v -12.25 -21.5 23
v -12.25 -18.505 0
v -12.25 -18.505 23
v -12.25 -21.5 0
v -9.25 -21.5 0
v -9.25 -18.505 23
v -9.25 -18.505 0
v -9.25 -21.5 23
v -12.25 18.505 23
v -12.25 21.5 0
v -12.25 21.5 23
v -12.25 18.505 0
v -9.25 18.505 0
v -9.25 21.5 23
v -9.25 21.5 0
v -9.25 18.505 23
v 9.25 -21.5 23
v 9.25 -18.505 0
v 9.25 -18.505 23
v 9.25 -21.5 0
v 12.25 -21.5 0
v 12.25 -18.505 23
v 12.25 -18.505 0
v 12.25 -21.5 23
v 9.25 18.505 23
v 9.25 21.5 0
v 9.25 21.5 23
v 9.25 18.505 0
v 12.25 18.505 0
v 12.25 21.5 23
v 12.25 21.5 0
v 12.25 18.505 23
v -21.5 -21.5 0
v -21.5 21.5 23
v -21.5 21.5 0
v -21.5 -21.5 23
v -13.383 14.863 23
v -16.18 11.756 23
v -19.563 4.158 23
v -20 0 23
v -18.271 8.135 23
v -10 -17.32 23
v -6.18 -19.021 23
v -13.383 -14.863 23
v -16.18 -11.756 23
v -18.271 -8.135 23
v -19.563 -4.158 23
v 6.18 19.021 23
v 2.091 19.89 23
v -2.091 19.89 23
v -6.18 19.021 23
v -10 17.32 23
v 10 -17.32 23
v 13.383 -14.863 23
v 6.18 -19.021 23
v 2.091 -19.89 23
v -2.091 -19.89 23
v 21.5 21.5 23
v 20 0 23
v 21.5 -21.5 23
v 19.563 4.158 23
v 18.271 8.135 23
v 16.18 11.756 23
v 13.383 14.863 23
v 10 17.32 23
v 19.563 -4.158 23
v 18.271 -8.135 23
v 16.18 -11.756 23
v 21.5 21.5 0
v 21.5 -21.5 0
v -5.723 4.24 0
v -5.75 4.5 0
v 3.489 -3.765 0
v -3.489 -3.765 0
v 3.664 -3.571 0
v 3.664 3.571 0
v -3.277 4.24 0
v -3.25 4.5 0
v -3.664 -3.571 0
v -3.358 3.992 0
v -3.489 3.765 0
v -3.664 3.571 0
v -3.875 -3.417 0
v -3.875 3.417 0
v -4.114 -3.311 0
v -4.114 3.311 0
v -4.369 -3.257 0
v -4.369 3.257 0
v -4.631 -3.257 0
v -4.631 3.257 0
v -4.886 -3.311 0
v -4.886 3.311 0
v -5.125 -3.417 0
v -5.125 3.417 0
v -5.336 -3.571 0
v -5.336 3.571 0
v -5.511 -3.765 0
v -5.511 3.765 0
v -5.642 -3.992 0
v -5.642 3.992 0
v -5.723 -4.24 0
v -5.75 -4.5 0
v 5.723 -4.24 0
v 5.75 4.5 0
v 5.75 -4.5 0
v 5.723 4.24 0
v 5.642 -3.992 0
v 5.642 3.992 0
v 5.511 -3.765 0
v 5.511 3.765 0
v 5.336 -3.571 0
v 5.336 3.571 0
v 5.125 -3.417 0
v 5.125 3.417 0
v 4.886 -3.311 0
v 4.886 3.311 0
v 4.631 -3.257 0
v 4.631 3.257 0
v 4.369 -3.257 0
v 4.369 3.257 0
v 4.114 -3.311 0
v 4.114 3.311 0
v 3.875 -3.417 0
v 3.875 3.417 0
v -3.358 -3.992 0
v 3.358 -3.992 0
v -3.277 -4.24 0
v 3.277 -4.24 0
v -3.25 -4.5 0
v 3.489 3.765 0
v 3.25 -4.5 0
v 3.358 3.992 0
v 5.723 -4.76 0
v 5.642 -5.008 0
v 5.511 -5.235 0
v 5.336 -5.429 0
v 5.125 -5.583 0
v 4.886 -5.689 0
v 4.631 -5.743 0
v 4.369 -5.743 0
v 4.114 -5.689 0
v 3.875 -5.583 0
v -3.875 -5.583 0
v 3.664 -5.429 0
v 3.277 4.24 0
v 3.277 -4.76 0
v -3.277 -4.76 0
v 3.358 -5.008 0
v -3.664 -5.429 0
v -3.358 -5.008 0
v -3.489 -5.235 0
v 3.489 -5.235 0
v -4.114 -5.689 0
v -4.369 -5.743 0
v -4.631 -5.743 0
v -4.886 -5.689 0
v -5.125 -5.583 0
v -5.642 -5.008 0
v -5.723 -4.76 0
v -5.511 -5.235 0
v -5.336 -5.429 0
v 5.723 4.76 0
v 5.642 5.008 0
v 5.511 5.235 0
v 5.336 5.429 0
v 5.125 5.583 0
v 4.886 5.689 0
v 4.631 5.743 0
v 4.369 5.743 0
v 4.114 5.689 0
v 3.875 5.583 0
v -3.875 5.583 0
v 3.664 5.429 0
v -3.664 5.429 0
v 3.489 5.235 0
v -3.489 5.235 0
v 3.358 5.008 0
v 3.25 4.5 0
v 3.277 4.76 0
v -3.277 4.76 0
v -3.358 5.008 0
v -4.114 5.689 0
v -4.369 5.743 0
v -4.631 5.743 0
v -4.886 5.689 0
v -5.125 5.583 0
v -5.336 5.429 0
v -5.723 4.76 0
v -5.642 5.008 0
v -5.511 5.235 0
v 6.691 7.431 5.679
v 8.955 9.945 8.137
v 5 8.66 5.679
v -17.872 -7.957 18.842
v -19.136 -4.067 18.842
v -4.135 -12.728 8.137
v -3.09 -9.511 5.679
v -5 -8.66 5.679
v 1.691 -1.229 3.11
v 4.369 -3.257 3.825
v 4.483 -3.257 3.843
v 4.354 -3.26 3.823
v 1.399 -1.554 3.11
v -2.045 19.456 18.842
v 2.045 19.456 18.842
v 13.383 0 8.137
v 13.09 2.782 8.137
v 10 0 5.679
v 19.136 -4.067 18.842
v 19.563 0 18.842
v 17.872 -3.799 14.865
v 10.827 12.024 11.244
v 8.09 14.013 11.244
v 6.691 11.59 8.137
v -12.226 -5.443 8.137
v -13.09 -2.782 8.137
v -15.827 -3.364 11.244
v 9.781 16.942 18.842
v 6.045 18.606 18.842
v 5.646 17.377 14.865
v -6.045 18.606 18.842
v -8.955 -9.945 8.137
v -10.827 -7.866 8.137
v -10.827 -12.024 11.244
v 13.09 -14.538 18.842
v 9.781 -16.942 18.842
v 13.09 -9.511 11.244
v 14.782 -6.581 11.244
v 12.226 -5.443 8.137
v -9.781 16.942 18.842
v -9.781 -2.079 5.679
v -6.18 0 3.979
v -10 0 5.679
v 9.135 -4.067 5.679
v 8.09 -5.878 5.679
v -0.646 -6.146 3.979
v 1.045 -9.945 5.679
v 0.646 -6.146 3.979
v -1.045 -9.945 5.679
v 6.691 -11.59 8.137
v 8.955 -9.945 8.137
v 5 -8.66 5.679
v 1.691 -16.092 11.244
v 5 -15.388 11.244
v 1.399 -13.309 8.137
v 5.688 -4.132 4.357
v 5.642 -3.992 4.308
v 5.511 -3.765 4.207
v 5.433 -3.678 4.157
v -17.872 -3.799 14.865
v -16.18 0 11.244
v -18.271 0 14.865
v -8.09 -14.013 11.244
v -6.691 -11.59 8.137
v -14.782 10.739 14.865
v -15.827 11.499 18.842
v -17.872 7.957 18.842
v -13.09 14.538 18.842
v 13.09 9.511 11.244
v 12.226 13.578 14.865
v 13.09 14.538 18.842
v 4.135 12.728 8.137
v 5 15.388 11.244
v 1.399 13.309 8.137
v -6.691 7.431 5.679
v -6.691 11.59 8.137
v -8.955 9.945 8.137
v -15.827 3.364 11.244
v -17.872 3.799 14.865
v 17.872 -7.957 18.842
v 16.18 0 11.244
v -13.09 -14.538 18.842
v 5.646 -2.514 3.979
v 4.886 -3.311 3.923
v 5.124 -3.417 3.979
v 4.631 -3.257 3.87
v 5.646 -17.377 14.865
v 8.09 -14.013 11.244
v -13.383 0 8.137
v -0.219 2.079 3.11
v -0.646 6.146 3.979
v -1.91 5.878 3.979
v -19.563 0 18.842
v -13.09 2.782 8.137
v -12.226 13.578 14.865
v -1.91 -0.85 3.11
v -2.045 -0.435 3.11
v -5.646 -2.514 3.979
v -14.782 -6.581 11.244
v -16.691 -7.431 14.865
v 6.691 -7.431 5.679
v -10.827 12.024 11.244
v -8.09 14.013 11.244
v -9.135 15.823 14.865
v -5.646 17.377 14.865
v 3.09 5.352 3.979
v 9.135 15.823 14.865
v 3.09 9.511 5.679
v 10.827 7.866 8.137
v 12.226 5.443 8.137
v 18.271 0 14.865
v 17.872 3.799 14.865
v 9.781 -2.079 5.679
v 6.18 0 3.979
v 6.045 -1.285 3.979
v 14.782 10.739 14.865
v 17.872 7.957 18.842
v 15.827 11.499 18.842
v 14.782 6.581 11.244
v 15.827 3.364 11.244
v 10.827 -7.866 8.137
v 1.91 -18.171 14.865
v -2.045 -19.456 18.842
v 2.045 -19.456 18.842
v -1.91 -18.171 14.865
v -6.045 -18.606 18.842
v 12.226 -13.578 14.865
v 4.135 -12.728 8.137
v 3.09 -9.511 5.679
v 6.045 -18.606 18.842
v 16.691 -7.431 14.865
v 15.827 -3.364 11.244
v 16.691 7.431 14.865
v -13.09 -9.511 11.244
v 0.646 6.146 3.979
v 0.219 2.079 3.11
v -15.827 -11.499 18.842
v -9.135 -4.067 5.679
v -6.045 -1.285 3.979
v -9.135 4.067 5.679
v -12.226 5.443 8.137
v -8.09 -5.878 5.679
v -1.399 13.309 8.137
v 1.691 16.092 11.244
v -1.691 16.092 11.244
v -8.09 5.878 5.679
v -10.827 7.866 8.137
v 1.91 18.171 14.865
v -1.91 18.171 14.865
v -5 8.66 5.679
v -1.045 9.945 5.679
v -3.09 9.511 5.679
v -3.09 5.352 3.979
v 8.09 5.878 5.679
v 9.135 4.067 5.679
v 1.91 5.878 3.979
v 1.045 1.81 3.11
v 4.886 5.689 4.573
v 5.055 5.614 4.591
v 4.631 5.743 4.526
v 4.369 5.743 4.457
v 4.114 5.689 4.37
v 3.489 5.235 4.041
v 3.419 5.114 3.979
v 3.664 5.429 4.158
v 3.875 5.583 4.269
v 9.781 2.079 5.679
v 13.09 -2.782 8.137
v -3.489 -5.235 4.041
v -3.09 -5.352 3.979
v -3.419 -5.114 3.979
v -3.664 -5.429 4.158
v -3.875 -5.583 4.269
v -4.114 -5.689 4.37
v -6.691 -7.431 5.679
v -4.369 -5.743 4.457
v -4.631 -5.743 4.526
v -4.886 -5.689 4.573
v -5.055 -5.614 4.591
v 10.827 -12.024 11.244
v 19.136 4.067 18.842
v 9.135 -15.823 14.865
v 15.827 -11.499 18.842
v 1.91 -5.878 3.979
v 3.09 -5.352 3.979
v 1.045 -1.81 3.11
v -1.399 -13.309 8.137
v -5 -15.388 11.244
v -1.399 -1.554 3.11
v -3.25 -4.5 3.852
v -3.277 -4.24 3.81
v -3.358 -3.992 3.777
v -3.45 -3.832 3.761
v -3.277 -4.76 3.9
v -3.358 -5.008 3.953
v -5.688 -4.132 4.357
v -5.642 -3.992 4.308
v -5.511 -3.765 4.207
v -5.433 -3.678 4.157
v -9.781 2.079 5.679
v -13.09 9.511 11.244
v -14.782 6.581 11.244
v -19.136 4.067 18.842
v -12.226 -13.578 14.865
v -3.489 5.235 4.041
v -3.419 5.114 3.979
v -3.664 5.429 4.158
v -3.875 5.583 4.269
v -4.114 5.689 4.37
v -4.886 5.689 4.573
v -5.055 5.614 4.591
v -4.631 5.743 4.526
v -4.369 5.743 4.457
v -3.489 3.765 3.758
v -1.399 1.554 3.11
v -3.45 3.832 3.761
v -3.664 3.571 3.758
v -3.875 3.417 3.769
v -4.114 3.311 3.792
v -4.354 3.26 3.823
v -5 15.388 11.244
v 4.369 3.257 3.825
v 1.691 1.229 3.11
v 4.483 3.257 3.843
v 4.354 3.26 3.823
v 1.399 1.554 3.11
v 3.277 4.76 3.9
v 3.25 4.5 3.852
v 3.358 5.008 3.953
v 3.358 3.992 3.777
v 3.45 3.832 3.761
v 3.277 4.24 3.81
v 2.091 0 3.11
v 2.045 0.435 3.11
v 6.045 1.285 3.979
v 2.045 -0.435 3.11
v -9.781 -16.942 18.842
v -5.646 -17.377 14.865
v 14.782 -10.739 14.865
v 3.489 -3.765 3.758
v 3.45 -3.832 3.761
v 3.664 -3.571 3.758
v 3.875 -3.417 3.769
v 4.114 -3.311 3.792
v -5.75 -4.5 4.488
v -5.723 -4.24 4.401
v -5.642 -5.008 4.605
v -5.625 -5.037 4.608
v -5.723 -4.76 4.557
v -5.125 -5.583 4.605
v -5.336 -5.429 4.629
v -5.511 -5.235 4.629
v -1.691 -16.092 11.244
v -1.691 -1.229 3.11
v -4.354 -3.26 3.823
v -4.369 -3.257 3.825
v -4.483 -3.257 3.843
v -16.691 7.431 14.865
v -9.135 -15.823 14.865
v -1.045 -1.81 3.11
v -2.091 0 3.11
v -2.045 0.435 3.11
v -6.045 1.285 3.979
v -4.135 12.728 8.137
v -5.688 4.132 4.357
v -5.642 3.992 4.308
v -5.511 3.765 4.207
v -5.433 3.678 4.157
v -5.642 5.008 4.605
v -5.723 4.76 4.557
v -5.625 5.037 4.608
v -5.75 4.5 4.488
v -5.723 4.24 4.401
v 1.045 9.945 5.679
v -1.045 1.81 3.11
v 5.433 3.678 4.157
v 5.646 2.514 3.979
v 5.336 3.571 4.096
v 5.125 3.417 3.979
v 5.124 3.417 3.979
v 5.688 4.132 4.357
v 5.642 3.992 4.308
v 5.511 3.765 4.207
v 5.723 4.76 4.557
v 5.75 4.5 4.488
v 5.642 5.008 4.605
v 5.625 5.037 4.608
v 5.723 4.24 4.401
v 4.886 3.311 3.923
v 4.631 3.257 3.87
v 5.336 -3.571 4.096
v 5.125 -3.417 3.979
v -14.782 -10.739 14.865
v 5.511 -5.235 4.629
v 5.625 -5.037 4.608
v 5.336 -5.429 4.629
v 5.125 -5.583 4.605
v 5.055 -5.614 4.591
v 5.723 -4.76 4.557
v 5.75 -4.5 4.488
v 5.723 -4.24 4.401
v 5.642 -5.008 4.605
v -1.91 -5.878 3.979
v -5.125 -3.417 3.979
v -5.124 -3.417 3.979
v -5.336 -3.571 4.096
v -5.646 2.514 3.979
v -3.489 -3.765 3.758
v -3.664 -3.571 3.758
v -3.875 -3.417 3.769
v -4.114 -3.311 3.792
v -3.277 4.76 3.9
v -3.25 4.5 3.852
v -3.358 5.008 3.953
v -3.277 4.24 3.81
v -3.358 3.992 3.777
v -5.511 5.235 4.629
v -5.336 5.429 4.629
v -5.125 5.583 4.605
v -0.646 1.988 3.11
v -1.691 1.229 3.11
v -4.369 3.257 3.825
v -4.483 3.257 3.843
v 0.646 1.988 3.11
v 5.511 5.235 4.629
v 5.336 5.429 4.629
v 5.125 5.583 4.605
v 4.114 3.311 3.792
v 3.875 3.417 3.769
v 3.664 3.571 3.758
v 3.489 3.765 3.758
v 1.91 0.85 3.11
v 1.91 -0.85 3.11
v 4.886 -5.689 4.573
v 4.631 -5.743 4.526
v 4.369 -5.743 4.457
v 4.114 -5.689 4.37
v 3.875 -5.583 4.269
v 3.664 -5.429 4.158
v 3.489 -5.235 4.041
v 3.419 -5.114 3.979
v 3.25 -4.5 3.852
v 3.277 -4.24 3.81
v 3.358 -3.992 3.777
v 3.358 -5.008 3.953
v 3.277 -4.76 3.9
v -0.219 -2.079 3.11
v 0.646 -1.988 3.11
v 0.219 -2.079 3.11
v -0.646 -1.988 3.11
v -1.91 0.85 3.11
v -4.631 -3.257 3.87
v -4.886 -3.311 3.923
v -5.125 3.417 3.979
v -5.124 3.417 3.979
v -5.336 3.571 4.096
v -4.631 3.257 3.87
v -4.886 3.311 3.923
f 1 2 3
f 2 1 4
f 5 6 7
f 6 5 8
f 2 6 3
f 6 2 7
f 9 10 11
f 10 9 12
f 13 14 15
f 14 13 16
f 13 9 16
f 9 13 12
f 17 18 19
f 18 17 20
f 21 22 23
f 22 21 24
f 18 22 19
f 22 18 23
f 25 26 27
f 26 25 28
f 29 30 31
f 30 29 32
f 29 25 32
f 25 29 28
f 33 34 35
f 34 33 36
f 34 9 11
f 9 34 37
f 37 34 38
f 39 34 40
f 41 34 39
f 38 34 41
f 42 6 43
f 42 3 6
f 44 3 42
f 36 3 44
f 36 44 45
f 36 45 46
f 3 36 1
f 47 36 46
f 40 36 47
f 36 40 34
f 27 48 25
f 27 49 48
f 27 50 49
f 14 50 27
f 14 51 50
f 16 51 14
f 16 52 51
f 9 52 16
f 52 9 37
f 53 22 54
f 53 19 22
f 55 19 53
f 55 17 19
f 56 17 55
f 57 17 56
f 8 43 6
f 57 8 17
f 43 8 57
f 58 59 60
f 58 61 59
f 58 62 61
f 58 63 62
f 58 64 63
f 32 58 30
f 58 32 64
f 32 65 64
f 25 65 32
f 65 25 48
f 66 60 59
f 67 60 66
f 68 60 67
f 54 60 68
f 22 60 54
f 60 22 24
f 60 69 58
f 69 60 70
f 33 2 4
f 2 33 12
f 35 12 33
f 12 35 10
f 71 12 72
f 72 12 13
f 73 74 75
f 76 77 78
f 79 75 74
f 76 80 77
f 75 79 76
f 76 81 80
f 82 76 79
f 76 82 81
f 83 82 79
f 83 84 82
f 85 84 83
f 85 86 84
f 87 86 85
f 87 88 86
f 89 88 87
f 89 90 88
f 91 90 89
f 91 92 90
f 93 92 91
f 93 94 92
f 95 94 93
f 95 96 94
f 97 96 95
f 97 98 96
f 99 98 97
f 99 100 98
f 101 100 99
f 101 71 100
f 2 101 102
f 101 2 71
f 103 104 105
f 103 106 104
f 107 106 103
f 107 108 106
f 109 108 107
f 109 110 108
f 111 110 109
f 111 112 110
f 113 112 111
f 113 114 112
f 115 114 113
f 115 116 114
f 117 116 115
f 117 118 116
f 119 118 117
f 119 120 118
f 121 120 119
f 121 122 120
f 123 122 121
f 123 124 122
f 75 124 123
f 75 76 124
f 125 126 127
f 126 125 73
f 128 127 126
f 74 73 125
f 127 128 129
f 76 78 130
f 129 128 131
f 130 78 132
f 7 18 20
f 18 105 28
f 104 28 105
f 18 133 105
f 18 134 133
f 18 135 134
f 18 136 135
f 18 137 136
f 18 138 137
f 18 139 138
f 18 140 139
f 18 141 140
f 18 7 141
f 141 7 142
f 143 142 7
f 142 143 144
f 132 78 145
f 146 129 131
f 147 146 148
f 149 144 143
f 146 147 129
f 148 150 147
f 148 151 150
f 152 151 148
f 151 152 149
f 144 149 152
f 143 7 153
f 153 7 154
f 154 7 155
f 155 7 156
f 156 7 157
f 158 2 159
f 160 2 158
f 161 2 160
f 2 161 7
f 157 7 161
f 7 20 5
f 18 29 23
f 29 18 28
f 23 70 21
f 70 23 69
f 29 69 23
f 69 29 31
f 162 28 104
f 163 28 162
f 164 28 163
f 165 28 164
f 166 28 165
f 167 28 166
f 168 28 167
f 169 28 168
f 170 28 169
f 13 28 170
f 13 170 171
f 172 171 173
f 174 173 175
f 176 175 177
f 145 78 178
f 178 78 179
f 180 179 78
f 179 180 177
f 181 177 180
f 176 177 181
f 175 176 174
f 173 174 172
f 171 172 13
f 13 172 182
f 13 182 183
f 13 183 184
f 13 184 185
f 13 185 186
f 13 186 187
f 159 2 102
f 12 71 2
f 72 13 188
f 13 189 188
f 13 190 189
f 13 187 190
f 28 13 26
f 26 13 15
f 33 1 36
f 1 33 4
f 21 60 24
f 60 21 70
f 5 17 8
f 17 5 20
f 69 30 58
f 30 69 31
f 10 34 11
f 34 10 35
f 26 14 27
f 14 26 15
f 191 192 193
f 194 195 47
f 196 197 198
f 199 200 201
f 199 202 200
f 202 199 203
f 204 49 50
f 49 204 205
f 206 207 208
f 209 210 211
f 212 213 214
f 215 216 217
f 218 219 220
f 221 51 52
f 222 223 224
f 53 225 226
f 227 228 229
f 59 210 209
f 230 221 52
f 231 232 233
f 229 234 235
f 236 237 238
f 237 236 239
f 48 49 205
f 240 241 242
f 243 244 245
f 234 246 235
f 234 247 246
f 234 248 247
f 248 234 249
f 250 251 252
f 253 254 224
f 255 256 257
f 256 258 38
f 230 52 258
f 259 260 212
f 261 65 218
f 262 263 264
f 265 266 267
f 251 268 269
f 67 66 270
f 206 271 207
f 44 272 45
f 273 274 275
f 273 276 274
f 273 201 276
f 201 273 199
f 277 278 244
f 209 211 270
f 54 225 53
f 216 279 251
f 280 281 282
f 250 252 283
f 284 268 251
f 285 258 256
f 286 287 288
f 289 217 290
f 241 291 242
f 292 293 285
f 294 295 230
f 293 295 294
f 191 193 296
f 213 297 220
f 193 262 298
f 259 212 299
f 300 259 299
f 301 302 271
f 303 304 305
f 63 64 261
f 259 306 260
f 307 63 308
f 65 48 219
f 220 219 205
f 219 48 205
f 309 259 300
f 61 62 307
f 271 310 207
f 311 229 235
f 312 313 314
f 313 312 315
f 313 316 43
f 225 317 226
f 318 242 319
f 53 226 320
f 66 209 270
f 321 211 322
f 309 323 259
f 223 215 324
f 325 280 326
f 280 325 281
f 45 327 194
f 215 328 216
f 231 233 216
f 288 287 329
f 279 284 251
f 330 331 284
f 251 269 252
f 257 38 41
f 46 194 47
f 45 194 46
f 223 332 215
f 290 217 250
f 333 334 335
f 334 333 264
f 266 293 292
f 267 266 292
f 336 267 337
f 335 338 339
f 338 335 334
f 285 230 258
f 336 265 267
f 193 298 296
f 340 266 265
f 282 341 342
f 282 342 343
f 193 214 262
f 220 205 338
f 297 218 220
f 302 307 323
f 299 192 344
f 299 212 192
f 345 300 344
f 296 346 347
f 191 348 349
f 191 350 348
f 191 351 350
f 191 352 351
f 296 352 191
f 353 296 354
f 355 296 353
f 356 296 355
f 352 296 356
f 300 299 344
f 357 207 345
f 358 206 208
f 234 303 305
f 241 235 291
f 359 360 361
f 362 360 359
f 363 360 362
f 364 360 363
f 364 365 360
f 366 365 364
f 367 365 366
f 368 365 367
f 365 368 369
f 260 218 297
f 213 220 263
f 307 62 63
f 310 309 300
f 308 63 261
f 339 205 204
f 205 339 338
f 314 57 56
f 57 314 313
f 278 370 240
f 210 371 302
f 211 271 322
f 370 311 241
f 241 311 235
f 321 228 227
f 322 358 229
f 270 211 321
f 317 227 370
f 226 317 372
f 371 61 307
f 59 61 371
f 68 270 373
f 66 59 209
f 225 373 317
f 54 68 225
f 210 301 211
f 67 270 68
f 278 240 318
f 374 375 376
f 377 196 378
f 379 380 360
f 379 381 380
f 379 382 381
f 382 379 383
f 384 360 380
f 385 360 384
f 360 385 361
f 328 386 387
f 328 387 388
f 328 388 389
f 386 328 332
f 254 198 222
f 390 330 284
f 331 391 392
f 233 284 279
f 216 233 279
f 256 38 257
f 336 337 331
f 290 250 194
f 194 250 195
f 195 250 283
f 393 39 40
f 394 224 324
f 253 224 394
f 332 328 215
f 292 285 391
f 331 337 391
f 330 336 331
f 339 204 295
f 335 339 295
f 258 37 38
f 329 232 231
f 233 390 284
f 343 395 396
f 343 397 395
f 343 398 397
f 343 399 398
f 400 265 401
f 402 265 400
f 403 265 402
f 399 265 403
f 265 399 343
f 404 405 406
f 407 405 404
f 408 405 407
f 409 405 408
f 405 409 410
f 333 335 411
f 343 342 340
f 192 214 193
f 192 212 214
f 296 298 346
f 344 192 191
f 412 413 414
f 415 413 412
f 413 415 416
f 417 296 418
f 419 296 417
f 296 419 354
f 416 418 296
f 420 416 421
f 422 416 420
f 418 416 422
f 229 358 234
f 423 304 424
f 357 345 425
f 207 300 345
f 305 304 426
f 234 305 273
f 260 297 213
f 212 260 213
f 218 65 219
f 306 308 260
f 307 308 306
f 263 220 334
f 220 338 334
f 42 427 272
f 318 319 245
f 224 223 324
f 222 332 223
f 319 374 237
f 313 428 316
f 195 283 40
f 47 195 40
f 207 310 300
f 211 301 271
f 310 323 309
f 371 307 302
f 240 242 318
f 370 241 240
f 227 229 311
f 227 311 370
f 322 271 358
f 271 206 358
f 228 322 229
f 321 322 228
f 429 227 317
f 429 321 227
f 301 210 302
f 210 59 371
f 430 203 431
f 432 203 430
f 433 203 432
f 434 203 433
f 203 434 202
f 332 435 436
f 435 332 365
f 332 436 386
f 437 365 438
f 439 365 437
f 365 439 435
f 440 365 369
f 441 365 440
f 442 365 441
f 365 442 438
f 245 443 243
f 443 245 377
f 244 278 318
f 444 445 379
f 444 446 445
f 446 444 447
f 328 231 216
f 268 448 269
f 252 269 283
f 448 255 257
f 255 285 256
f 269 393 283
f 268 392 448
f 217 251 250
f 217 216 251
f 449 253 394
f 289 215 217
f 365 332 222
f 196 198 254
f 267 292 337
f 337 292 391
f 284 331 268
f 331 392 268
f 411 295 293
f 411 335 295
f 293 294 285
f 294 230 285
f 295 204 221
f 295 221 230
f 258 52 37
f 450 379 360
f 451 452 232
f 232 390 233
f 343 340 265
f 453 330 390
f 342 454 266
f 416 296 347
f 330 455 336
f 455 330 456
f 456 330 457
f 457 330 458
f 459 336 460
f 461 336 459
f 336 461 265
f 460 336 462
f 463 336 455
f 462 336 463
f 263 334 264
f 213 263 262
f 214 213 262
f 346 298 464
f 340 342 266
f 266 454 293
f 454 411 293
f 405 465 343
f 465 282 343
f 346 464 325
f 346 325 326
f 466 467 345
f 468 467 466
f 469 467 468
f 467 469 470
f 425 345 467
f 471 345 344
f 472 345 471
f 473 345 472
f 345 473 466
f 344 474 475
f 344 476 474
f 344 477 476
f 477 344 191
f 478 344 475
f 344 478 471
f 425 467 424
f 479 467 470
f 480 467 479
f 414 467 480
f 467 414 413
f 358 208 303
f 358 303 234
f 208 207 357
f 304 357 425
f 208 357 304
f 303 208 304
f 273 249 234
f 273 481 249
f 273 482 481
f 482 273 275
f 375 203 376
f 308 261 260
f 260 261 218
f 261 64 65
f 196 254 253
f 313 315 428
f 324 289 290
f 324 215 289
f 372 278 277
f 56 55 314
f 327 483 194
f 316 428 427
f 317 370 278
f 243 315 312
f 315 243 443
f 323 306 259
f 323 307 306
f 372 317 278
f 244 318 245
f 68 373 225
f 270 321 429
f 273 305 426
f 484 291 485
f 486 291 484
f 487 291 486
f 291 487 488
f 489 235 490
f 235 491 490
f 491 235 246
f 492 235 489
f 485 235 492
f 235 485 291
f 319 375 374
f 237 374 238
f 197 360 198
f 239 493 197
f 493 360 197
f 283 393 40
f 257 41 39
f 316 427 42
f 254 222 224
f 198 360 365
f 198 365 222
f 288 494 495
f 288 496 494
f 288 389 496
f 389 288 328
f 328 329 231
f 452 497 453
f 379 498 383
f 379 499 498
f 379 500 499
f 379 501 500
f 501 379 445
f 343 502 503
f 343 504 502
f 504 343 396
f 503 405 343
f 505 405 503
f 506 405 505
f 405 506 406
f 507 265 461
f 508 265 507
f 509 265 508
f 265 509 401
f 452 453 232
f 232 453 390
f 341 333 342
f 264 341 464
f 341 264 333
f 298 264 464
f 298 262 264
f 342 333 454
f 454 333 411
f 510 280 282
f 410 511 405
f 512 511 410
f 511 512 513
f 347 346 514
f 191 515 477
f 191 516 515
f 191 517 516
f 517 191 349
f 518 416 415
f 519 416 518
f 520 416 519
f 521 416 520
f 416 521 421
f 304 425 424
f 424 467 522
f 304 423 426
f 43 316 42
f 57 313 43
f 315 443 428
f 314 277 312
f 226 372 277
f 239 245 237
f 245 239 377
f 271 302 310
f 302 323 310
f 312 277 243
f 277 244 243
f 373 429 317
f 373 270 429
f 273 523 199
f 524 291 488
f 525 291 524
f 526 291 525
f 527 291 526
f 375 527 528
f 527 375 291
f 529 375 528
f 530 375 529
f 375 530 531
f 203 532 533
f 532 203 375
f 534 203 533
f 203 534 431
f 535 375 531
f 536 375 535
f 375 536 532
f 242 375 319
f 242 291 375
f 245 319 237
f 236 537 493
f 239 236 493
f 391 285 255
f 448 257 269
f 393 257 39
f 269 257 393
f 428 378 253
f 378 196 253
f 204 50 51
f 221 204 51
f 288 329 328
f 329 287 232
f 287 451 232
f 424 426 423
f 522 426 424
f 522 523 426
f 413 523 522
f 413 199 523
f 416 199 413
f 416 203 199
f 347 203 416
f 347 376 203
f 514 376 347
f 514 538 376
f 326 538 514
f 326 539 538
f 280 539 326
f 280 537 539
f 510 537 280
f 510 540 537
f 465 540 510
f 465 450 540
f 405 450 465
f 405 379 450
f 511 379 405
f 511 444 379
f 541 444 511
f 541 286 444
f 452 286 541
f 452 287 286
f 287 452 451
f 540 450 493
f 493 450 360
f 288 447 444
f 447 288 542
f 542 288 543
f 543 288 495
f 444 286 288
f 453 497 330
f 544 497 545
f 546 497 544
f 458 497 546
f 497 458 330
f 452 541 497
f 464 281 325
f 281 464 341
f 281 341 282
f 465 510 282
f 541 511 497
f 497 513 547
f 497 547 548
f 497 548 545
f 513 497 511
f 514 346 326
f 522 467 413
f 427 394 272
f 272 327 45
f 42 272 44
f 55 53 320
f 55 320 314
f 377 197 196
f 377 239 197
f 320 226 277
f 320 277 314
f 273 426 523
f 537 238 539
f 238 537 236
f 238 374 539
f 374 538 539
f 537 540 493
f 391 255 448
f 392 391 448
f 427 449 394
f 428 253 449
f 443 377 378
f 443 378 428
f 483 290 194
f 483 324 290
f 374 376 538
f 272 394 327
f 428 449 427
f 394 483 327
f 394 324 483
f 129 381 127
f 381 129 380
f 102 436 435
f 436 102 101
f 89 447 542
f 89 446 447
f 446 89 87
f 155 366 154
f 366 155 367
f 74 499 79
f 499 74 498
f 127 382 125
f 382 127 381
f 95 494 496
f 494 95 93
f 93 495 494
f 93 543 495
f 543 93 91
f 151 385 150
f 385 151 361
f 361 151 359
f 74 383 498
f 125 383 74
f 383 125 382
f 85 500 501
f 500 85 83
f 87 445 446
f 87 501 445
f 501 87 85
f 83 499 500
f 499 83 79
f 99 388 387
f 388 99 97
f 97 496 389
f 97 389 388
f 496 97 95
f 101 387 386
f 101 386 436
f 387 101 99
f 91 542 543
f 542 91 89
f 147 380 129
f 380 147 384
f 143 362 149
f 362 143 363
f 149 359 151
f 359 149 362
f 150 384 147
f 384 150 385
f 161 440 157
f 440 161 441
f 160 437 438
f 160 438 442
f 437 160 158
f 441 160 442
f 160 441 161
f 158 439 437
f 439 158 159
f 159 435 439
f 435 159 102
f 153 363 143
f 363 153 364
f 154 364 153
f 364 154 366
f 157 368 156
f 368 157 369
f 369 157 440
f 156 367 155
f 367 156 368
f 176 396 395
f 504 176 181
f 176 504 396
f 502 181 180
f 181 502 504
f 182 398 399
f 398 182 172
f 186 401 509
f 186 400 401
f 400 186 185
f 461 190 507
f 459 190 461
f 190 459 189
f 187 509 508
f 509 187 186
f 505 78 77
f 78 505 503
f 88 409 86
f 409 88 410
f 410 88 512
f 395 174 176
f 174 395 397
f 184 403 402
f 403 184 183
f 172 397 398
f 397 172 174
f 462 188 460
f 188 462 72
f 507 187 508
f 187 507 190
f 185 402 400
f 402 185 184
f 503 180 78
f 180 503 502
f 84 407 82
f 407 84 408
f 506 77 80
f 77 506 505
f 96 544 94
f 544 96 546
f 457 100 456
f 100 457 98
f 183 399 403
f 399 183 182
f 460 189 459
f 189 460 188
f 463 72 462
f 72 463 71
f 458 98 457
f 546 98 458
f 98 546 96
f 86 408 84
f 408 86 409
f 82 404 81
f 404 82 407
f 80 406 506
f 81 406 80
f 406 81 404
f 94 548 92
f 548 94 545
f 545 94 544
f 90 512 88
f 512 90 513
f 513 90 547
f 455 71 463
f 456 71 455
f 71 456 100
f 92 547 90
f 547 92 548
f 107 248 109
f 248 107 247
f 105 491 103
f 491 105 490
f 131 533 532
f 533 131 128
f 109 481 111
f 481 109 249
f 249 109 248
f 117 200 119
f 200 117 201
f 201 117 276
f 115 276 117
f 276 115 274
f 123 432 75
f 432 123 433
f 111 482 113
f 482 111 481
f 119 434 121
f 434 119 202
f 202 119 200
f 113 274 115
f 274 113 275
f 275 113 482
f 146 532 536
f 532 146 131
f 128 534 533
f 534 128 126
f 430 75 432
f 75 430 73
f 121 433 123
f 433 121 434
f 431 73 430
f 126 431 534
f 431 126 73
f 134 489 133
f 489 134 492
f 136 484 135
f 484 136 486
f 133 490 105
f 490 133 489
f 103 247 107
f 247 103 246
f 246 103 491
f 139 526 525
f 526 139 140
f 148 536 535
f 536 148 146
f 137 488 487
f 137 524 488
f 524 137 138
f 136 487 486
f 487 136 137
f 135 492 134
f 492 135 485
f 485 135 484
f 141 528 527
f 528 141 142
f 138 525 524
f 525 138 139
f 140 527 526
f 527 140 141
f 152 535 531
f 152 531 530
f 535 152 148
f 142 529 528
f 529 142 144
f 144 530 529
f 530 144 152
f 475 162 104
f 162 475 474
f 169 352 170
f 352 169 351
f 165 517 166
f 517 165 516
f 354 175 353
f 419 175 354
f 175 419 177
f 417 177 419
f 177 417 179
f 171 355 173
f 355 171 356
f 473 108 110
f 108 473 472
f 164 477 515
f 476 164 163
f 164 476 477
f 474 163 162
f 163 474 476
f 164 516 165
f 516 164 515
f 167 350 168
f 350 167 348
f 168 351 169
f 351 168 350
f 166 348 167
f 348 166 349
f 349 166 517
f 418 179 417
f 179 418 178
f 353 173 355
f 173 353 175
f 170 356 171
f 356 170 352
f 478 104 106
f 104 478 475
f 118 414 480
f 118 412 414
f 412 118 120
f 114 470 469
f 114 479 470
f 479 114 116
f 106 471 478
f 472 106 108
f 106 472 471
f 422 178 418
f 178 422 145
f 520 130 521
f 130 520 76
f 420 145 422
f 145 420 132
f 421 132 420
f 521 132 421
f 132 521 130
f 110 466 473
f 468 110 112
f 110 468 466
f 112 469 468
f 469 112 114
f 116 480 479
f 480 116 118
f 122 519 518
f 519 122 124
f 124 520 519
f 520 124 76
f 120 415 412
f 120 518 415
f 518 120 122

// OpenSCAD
// file: cube_jig_common.scad
ball_diameter = 40.0;
wall = 3.0;
gap = 0;
e = 0.01;
slot = 3.0;
cube_size = [ball_diameter+wall,
             ball_diameter+wall,
             ball_diameter/2+wall-gap];

module jig() {
  difference() {
    translate([-cube_size[0]/2, -cube_size[1]/2, 0]) cube(cube_size);
    translate([0, 0, ball_diameter/2+wall]) sphere(d=ball_diameter);
    for (i = [-cube_size[0]/4, cube_size[0]/4]) {
        for (j = [(slot-cube_size[1]-e)/2, (e+cube_size[1]-slot)/2]) {
            translate([i,j,0]) cube([slot, slot, ball_diameter+wall*2+e], center=true);
        }
    }
  }
}

jig();
// main file
use <cube_jig_common.scad>;
sep = 9.0;
hole = 2.5;
$fn=30;
difference() {
    jig();
    for (i = [-sep/2, +sep/2]) {
        for (j = [-sep/2, +sep/2]) {
            translate([i,j,0]) cylinder(d=hole,h = 20, center=true);  
        }
    }
}
